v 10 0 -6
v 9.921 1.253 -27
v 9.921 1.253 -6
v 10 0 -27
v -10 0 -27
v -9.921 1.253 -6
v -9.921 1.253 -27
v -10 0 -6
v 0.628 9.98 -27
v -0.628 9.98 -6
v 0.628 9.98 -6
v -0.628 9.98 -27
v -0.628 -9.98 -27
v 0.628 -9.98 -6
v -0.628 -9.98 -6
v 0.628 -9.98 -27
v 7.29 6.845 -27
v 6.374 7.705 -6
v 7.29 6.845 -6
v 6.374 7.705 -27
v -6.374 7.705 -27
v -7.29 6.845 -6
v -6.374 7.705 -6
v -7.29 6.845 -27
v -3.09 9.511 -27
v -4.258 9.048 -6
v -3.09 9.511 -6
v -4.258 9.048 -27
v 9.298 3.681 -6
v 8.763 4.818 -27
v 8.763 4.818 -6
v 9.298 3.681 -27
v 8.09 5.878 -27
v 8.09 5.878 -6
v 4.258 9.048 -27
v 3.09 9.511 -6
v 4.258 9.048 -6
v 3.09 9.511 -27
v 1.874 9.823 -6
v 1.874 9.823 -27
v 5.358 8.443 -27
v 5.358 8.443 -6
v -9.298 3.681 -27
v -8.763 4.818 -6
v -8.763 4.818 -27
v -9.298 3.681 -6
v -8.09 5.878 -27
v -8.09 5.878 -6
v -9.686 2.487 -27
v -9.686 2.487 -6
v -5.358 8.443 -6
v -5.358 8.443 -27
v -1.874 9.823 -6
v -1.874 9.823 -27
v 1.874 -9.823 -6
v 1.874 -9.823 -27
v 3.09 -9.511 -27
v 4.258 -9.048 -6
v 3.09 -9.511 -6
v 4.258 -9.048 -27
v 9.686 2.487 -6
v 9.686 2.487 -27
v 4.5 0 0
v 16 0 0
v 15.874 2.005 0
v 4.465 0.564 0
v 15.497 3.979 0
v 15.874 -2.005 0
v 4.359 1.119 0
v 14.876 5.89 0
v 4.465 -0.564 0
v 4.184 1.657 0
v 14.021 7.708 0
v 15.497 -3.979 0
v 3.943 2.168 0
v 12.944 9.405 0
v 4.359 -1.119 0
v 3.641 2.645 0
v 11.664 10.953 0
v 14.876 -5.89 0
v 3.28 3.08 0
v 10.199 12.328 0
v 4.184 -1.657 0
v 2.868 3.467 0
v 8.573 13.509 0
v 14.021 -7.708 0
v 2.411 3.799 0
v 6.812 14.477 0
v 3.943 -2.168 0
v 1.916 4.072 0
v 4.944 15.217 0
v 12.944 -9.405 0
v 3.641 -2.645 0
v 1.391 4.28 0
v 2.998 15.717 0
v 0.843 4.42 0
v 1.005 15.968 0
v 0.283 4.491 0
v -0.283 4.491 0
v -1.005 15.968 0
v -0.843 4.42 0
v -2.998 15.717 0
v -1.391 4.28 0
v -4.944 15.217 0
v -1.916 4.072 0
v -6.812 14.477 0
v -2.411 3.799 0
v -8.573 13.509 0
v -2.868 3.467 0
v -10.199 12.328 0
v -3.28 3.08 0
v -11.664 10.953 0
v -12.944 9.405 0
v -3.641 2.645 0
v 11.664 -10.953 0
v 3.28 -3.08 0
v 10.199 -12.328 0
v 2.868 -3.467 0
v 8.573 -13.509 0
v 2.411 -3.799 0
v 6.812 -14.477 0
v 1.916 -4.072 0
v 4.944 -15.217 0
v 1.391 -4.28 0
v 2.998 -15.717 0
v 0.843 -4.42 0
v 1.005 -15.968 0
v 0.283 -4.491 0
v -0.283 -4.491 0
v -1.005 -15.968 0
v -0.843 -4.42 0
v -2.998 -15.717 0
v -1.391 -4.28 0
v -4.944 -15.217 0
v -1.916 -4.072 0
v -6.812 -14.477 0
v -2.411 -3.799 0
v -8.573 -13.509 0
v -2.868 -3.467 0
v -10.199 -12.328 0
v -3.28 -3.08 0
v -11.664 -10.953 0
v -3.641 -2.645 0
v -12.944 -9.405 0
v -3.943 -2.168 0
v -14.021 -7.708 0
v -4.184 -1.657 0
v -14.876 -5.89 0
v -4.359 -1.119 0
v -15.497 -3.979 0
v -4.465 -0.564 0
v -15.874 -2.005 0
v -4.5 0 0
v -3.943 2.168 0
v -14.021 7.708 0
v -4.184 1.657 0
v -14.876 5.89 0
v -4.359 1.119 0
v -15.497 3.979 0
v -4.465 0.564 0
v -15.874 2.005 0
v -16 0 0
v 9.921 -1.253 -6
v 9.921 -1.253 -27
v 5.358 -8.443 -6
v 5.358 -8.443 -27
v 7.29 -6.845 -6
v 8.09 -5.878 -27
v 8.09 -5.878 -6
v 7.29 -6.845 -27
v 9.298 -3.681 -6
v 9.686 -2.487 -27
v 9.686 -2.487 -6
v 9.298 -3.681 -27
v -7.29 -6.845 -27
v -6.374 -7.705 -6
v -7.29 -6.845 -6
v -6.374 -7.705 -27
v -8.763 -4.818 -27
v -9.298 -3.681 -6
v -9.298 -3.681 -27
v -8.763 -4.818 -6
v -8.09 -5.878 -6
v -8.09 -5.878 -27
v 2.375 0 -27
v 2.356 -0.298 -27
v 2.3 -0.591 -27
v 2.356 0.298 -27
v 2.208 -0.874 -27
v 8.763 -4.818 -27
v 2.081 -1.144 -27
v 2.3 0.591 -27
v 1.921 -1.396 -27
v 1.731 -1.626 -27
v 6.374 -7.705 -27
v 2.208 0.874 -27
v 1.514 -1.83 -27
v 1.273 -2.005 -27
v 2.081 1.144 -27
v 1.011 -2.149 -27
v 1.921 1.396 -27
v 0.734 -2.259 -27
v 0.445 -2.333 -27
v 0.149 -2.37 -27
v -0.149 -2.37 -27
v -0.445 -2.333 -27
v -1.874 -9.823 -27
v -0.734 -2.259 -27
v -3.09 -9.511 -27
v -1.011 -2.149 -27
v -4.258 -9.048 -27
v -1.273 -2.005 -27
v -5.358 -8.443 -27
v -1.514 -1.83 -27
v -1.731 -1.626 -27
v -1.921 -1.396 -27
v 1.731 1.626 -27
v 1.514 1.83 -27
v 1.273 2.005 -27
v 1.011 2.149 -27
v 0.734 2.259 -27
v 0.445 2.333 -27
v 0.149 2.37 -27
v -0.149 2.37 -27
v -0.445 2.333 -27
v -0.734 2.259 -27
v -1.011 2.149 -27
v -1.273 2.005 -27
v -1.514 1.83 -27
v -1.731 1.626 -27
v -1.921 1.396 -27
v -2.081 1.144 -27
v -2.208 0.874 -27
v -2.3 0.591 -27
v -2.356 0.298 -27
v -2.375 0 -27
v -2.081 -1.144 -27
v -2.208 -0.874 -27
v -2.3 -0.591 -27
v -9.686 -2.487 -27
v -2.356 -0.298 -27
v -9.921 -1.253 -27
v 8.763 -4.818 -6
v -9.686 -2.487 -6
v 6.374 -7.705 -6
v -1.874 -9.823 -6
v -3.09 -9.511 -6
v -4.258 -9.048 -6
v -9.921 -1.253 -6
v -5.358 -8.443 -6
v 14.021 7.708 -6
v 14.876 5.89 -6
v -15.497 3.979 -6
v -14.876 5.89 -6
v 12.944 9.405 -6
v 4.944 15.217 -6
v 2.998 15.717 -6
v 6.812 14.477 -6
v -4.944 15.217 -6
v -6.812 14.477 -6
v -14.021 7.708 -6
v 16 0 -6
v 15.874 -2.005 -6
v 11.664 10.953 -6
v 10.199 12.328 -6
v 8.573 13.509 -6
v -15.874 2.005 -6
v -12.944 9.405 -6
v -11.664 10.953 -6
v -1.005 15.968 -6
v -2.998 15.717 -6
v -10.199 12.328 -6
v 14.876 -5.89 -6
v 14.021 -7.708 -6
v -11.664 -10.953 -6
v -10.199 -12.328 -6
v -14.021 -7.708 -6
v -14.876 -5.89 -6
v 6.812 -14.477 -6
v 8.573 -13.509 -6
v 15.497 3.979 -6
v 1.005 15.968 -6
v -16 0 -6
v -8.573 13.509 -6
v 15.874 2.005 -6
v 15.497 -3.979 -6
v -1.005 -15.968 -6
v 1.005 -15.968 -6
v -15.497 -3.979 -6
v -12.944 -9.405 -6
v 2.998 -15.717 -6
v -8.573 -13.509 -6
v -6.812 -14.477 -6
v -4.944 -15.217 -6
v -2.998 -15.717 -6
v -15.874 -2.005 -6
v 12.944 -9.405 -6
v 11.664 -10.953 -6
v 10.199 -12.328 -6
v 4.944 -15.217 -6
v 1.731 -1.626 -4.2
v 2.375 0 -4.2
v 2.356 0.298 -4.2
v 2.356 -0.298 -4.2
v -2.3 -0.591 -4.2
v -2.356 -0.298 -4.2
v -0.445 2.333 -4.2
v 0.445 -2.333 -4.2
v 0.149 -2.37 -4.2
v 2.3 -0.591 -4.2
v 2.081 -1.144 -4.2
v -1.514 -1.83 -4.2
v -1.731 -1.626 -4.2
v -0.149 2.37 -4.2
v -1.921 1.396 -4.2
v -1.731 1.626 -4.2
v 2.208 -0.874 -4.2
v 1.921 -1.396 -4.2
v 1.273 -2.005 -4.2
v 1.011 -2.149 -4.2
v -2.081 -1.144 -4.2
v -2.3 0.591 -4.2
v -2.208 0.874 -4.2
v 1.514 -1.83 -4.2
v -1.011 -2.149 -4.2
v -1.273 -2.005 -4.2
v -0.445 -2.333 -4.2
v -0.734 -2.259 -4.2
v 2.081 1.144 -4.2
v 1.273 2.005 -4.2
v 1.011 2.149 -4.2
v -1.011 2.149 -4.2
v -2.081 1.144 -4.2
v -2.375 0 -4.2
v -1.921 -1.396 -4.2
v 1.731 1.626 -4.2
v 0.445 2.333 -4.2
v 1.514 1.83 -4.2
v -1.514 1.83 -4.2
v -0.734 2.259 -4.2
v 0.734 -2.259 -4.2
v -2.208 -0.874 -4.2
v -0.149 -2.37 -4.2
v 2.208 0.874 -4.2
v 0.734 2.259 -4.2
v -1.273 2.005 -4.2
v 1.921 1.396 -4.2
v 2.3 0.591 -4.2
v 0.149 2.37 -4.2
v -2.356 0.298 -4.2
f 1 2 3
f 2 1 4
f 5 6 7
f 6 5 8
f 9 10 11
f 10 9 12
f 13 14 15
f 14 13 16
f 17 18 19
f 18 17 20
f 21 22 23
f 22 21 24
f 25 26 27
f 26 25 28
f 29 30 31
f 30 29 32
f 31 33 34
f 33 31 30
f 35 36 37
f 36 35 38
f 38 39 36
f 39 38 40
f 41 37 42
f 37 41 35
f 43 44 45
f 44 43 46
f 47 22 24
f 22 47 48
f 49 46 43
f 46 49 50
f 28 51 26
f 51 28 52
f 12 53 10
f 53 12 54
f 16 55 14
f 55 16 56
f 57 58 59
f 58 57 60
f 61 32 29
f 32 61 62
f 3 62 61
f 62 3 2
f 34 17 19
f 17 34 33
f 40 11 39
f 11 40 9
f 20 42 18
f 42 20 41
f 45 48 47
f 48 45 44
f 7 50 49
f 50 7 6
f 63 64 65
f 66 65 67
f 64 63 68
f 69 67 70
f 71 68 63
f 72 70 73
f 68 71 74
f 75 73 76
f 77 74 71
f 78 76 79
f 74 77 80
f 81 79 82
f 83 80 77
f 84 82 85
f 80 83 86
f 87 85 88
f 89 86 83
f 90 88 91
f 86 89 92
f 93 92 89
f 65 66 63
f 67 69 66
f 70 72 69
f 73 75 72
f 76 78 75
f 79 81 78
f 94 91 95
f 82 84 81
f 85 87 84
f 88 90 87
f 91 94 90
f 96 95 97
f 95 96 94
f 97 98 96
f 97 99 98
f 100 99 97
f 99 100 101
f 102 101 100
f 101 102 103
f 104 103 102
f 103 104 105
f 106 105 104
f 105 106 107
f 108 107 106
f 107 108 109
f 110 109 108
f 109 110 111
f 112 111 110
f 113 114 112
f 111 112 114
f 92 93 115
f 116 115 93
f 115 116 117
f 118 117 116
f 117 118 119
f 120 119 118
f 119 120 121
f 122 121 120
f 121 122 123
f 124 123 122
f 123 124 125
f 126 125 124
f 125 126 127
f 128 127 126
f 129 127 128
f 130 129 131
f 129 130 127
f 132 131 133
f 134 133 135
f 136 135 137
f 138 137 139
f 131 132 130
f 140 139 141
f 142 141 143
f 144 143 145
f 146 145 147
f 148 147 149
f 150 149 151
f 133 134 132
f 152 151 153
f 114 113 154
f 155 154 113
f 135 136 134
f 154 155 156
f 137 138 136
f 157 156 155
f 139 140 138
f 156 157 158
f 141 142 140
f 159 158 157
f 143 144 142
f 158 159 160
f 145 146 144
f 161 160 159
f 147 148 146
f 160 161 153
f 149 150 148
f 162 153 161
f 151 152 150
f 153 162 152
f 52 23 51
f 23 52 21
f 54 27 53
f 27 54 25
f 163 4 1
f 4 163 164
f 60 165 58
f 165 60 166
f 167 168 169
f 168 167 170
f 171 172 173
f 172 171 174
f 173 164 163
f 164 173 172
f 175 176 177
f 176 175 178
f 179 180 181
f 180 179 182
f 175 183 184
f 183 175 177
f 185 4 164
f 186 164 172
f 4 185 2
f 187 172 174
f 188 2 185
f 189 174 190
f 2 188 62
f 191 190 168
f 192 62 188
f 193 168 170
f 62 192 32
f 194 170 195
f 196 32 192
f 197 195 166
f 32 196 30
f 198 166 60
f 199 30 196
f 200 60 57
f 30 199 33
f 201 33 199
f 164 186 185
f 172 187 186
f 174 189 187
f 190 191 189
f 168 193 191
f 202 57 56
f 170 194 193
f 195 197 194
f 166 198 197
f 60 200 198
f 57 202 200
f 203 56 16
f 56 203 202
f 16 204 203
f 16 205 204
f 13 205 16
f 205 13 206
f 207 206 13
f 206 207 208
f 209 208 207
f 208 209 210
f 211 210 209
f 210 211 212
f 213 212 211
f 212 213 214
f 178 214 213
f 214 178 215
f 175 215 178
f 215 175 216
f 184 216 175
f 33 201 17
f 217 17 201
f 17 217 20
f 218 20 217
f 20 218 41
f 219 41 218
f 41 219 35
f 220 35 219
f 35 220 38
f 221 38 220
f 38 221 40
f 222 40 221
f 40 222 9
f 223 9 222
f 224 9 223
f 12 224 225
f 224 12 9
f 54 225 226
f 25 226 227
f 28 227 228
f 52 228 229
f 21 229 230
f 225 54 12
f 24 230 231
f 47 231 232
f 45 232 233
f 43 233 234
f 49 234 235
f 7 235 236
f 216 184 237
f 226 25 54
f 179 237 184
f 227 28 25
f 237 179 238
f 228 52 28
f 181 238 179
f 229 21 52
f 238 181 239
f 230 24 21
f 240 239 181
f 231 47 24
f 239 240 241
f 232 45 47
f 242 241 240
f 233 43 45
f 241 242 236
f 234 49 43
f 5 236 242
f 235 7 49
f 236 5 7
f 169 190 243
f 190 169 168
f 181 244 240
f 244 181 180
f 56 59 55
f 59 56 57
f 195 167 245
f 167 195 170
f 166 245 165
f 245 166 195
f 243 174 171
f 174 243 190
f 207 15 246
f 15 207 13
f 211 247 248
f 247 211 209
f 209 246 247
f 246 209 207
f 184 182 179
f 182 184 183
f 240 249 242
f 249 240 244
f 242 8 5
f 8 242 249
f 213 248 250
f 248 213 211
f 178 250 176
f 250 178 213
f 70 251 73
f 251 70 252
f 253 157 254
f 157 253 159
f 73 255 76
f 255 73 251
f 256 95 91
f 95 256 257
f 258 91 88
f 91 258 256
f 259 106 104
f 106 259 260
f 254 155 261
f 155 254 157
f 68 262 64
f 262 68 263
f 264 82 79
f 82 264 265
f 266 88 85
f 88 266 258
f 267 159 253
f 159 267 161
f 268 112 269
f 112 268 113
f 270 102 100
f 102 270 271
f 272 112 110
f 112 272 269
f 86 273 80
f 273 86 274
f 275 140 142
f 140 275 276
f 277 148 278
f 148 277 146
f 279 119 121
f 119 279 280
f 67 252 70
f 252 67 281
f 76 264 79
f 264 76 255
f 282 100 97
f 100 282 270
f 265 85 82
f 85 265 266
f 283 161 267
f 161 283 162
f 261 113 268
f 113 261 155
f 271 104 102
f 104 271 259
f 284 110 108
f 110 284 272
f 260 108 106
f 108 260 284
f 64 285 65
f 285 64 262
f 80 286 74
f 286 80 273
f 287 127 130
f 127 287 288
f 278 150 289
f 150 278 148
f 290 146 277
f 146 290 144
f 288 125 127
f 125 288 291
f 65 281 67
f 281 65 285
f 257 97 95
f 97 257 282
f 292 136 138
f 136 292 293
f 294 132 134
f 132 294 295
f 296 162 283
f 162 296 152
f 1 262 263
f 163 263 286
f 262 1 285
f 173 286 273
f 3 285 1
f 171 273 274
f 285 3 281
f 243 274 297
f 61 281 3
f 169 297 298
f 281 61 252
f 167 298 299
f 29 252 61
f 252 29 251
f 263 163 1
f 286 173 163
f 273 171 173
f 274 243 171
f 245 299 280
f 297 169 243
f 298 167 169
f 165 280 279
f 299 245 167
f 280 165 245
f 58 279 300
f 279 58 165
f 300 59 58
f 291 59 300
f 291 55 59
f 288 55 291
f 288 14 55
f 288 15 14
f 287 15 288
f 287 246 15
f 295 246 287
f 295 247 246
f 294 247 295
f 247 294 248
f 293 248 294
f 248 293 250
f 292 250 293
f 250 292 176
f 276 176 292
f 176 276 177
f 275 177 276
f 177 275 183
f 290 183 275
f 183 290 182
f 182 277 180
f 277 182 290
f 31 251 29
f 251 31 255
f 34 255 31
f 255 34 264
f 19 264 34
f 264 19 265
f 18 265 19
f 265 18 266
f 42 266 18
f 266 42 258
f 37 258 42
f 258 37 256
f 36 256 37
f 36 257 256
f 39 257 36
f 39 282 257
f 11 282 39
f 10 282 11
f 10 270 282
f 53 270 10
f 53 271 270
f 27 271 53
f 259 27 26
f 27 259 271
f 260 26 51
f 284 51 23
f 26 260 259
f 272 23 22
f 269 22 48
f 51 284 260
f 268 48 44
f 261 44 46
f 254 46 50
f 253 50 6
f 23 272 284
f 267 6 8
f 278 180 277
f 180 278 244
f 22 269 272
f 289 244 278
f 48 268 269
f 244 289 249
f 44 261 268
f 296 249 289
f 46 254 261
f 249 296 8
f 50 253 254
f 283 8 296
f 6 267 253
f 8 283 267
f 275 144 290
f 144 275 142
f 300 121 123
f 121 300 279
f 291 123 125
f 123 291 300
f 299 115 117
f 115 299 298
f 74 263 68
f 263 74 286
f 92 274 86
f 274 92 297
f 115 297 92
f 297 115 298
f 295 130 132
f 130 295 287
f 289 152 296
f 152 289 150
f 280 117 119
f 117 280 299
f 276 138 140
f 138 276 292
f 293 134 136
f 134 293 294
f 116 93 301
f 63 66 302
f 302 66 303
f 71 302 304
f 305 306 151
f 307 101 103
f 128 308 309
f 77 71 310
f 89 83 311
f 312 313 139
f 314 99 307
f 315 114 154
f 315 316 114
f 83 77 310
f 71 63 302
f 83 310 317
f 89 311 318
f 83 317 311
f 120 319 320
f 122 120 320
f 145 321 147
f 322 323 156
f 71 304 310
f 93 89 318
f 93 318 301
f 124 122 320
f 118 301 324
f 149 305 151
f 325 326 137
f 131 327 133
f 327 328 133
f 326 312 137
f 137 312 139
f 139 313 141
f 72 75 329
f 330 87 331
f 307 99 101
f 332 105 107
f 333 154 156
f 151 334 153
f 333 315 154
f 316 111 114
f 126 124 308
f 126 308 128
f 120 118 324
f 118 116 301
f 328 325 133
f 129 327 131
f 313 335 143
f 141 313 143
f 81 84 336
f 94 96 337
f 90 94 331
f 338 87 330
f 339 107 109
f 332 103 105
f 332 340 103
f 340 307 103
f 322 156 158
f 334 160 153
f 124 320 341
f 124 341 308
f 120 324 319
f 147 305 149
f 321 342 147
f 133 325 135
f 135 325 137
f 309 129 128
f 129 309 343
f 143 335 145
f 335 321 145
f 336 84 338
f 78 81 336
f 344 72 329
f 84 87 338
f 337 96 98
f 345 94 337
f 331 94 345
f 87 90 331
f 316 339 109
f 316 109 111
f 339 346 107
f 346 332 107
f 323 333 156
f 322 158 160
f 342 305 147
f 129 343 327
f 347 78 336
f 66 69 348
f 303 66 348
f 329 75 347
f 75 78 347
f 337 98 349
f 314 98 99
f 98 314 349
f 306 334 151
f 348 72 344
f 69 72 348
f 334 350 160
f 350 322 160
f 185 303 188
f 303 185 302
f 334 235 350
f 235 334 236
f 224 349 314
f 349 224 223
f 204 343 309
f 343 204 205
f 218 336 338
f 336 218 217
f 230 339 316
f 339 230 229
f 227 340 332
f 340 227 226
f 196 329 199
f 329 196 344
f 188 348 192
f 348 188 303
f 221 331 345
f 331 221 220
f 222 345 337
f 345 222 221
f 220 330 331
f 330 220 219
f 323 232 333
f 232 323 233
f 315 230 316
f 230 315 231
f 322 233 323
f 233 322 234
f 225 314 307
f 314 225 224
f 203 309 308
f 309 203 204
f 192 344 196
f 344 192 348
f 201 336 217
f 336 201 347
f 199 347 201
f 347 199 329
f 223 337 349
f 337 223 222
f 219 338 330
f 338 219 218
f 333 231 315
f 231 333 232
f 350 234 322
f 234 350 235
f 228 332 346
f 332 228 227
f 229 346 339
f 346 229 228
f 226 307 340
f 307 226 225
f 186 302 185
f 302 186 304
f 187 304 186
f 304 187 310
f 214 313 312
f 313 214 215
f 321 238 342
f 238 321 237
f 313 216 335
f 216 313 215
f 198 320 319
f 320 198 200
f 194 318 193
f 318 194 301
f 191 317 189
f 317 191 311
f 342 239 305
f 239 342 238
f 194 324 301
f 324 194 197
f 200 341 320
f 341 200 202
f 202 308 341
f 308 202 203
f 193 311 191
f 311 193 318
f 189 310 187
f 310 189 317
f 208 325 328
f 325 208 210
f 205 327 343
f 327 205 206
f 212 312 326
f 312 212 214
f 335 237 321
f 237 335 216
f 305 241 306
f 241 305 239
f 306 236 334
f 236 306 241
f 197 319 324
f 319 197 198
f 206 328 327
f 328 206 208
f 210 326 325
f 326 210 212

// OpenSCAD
$fn = 50;


difference() {
	union() {
		translate(v = [0, 0, -27.0000000000]) {
			cylinder(h = 27, r = 10.0000000000);
		}
		translate(v = [0, 0, -6.0000000000]) {
			cylinder(h = 6, r = 16.0000000000);
		}
	}
	union() {
		translate(v = [0, 0, 0]) {
			rotate(a = [0, 0, 0]) {
				difference() {
					union() {
						#translate(v = [0, 0, -27.0000000000]) {
							cylinder(h = 27, r = 2.2500000000);
						}
						#translate(v = [0, 0, -4.2000000000]) {
							cylinder(h = 4.2000000000, r1 = 2.3750000000, r2 = 4.5000000000);
						}
						#translate(v = [0, 0, -27.0000000000]) {
							cylinder(h = 27, r = 2.3750000000);
						}
						#translate(v = [0, 0, -27.0000000000]) {
							cylinder(h = 27, r = 2.2500000000);
						}
					}
					union();
				}
			}
		}
	}
}
